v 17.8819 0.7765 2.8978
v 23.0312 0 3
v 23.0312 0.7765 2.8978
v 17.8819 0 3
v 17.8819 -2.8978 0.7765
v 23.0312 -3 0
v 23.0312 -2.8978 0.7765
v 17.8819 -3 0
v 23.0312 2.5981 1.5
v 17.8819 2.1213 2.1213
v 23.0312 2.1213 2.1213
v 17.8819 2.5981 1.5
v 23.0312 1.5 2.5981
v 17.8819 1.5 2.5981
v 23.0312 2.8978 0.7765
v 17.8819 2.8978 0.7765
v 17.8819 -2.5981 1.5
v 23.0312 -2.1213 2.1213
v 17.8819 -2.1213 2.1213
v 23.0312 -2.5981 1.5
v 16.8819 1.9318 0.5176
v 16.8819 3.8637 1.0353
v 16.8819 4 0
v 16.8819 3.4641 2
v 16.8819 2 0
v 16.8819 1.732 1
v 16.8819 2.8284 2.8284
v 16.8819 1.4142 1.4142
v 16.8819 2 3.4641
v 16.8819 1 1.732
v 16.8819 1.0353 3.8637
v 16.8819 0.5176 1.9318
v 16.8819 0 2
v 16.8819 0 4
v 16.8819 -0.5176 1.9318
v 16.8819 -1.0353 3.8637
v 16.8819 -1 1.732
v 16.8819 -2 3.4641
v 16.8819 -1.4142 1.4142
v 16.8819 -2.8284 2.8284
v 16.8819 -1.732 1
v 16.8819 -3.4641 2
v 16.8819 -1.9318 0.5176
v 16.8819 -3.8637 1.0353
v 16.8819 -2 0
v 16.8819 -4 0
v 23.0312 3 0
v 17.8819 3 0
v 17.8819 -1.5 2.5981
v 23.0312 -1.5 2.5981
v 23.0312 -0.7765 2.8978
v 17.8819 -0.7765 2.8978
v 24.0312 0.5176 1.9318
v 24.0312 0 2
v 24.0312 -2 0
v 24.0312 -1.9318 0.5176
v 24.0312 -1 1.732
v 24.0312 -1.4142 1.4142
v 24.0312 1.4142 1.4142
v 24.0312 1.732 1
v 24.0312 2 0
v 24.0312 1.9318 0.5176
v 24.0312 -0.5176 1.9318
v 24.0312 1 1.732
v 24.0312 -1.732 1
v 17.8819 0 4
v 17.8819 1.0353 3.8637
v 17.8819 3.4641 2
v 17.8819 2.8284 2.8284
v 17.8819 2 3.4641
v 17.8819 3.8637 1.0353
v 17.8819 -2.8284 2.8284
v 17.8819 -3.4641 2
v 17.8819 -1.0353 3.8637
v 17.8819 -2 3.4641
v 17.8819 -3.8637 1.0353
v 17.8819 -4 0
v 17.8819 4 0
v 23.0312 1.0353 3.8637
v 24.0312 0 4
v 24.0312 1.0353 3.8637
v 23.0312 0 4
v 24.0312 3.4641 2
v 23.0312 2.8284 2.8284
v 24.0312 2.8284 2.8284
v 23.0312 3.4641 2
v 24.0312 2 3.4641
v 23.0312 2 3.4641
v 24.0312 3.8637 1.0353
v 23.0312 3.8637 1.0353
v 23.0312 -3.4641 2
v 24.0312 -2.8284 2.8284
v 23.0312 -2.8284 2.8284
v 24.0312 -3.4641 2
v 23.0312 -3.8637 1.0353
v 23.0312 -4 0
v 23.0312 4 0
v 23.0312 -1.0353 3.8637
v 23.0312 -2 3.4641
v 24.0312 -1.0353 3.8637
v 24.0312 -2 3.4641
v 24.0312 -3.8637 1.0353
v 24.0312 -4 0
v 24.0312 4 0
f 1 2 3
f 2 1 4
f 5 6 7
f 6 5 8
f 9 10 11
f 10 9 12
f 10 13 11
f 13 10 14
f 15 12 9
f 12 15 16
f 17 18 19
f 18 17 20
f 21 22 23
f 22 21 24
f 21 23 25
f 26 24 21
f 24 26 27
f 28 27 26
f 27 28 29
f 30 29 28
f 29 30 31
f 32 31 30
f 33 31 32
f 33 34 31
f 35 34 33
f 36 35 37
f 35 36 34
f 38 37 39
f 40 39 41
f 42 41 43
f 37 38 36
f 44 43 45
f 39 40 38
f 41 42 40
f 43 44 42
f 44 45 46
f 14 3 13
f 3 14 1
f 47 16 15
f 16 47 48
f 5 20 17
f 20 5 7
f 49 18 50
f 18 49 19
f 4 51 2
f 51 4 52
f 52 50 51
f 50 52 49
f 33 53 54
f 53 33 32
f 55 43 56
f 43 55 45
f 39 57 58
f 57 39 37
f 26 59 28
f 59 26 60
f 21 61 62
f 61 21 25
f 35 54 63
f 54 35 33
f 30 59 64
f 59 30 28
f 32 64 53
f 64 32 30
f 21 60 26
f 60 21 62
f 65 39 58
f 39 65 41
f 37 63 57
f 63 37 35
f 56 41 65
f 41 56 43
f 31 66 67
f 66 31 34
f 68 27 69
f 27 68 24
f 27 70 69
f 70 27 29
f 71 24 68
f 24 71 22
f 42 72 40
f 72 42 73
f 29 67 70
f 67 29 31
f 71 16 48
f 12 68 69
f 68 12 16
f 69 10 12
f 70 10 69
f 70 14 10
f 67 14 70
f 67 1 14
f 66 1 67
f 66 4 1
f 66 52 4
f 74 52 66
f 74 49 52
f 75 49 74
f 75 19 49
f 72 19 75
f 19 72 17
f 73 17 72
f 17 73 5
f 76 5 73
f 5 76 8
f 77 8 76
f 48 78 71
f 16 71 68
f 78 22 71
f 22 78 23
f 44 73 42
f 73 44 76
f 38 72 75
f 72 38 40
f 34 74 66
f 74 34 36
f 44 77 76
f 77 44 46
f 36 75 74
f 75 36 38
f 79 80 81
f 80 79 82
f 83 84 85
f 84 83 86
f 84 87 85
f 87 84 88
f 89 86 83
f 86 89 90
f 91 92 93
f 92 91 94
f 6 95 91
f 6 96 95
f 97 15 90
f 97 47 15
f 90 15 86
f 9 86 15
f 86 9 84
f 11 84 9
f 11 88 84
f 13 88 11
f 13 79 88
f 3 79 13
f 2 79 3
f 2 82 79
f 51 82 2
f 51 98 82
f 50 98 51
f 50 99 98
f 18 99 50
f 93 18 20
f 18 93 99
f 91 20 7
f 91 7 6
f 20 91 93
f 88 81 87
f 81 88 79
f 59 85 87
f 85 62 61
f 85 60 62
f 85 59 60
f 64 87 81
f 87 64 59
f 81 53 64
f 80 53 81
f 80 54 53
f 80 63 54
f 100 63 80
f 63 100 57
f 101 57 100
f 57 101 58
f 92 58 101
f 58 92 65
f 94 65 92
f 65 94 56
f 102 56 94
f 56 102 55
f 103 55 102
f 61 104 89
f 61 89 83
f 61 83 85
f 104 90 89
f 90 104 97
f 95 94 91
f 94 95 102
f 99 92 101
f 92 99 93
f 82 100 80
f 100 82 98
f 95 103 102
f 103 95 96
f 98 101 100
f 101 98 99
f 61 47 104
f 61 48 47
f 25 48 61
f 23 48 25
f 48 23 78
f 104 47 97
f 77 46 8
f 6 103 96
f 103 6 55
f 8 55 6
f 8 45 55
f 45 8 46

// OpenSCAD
// file: ../build_environments.scad
// build_environments.scad: modules to build level sections
//

module pool(diameter=10.0, wall_height=2.0, step_width=3.0, connections=[])
{
    difference() {
        union() {
        difference() {
            cylinder(h=0.5,r1=diameter+step_width,r2=diameter+step_width,$fn=48);
            translate([0,0,-0.1])
                cylinder(h=0.7,r1=diameter,r2=diameter,$fn=48);
        }
        difference() {
            cylinder(h=wall_height,r1=diameter+step_width+1.0,r2=diameter+step_width+1.0,$fn=48);
            translate([0,0,-0.1])
                cylinder(h=wall_height+0.2,r1=diameter+step_width,r2=diameter+step_width,$fn=48);
        }
        }
    
        for (c = connections)
        {
            rotate([0,90,0]) {
                angle = atan2(c[1],c[0]);
                rotate([-angle,0,0]) {
                    cylinder(h=diameter+5.0,r1=c[2],r2=c[2],$fn=48);
                }
            }
        }
    }
}

module straight(length=10.0, width=2.0, dy1=0.0, dy2=0.0, dz=0.0)
{
    dims = [0, 0, 0, 0, 0, (dz/length)];
    matrix = [
        [ 1, dims[0], dims[1], 0 ],
        [ dims[2], 1, dims[4], 0 ],
        [ dims[5], dims[3], 1, 0 ],
        [ 0, 0, 0, 1 ]
    ];
    multmatrix(matrix)
    difference() {
        translate([dy1,0,0])
        union() {
            rotate([0,90,0]) {
                difference() {
                    cylinder(h=(length-dy1-dy2),r1=width+1.0,r2=width+1.0,$fn=24);
                    translate([0,0,-0.1])
                        cylinder(h=(length-dy1-dy2+0.2),r1=width,r2=width,$fn=24);
                }
                difference() {
                    cylinder(h=1.0,r1=width+2.0,r2=width+2.0,$fn=24);
                    translate([0,0,-0.1])
                        cylinder(h=1.2,r1=width,r2=width,$fn=24);
                }
                translate([0,0,(length-dy1-dy2)-1.0]) {
                    difference() {
                        cylinder(h=1.0,r1=width+2.0,r2=width+2.0,$fn=24);
                        translate([0,0,-0.1])
                            cylinder(h=1.2,r1=width,r2=width,$fn=24);
                    }
                }
            }
        }
        translate([0,0,-(2*width+4.0)/2])
            cube([3*length,3*length,2*width+4.0],center=true);
    }
}

module curve(p0=[0,0], center=[0,0], dir=1, angle=0.0, width=2.0)
{
    radius = sqrt((p0[0]-center[0])*(p0[0]-center[0]) + (p0[1]-center[1])*(p0[1]-center[1]));
    if (dir == 0) {
        difference() {
            rotate([0,0,-90])
            difference() {
                rotate_extrude(angle = angle, convexity = 10, $fn=32)
                    translate([radius, 0, 0])
                        circle(r = width+1.0,$fn=24);
                rotate([0,0,-1.0])
                    rotate_extrude(angle = angle+2.0, convexity = 10, $fn=32)
                        translate([radius, 0, 0])
                            circle(r = width,$fn=24);
            }
            translate([0,0,-(2*width+4.0)/2])
                cube([5*radius,5*radius,2*width+4.0],center=true);
        }
    }
    else {
        difference() {
            rotate([0,0,90])
            difference() {
                rotate_extrude(angle = -angle, convexity = 10, $fn=32)
                    translate([radius, 0, 0])
                        circle(r = width+1.0,$fn=24);
                rotate([0,0,1.0])
                    rotate_extrude(angle = -angle-2.0, convexity = 10, $fn=32)
                        translate([radius, 0, 0])
                            circle(r = width,$fn=24);
            }
            translate([0,0,-(2*width+4.0)/2])
                cube([5*radius,5*radius,2*width+4.0],center=true);
        }
    }

}

// test pool
//pool(diameter=12.0000, wall_height=3.0000, step_width=3.0000, connections=[[0.0000,-26.0000,2.0000], [23.6074,0.0000,2.0000]]);

// test straight, slope
//straight(length=26.0000, width=2.0000, dy1=11.8322, dy2=6.7082, dz=0.0000);
//straight(length=29.1549, width=12.0000, dy1=0.0000, dy2=0.0000, dz=-15.0000);

// test curve
//curve(p0=[23.6074, 0.0000], center=[23.6074, 5.0000], dir=0, angle=60.1011, width=2.0000);
//curve(p0=[33.6426, 12.4219], center=[37.9771, 9.9295], dir=1, angle=120.4627, width=2.0000);
// main file
use <../build_environments.scad>;
straight(length=38.8973, width=2.0000, dy1=16.8819, dy2=14.8661, dz=0.0000);
